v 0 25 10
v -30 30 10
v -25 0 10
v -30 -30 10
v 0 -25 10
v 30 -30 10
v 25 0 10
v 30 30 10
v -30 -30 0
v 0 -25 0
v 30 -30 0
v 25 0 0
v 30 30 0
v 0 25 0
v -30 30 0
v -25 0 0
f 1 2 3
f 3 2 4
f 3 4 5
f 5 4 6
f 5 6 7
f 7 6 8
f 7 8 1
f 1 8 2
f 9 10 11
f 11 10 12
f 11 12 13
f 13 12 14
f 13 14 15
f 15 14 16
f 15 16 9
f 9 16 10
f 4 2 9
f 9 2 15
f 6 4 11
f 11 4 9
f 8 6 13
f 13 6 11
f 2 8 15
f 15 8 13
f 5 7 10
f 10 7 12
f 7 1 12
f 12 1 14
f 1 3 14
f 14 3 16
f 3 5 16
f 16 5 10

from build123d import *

# Parameters (mm, degrees)
SCHIZZO1_W                   = 60
SCHIZZO1_H                   = 60
ESTRUSIONE_ESTRUSIONE1_DEPTH = 10


with BuildPart() as part:
    # Schizzo1 → Estrusione-Estrusione1 (new body)
    with BuildSketch(Plane.XY):
        Rectangle(SCHIZZO1_W, SCHIZZO1_H)
        Polygon((0, -25), (25, 0), (0, 25), (-25, 0), align=None, mode=Mode.SUBTRACT)
    extrude(amount=ESTRUSIONE_ESTRUSIONE1_DEPTH)


solid = part.part
